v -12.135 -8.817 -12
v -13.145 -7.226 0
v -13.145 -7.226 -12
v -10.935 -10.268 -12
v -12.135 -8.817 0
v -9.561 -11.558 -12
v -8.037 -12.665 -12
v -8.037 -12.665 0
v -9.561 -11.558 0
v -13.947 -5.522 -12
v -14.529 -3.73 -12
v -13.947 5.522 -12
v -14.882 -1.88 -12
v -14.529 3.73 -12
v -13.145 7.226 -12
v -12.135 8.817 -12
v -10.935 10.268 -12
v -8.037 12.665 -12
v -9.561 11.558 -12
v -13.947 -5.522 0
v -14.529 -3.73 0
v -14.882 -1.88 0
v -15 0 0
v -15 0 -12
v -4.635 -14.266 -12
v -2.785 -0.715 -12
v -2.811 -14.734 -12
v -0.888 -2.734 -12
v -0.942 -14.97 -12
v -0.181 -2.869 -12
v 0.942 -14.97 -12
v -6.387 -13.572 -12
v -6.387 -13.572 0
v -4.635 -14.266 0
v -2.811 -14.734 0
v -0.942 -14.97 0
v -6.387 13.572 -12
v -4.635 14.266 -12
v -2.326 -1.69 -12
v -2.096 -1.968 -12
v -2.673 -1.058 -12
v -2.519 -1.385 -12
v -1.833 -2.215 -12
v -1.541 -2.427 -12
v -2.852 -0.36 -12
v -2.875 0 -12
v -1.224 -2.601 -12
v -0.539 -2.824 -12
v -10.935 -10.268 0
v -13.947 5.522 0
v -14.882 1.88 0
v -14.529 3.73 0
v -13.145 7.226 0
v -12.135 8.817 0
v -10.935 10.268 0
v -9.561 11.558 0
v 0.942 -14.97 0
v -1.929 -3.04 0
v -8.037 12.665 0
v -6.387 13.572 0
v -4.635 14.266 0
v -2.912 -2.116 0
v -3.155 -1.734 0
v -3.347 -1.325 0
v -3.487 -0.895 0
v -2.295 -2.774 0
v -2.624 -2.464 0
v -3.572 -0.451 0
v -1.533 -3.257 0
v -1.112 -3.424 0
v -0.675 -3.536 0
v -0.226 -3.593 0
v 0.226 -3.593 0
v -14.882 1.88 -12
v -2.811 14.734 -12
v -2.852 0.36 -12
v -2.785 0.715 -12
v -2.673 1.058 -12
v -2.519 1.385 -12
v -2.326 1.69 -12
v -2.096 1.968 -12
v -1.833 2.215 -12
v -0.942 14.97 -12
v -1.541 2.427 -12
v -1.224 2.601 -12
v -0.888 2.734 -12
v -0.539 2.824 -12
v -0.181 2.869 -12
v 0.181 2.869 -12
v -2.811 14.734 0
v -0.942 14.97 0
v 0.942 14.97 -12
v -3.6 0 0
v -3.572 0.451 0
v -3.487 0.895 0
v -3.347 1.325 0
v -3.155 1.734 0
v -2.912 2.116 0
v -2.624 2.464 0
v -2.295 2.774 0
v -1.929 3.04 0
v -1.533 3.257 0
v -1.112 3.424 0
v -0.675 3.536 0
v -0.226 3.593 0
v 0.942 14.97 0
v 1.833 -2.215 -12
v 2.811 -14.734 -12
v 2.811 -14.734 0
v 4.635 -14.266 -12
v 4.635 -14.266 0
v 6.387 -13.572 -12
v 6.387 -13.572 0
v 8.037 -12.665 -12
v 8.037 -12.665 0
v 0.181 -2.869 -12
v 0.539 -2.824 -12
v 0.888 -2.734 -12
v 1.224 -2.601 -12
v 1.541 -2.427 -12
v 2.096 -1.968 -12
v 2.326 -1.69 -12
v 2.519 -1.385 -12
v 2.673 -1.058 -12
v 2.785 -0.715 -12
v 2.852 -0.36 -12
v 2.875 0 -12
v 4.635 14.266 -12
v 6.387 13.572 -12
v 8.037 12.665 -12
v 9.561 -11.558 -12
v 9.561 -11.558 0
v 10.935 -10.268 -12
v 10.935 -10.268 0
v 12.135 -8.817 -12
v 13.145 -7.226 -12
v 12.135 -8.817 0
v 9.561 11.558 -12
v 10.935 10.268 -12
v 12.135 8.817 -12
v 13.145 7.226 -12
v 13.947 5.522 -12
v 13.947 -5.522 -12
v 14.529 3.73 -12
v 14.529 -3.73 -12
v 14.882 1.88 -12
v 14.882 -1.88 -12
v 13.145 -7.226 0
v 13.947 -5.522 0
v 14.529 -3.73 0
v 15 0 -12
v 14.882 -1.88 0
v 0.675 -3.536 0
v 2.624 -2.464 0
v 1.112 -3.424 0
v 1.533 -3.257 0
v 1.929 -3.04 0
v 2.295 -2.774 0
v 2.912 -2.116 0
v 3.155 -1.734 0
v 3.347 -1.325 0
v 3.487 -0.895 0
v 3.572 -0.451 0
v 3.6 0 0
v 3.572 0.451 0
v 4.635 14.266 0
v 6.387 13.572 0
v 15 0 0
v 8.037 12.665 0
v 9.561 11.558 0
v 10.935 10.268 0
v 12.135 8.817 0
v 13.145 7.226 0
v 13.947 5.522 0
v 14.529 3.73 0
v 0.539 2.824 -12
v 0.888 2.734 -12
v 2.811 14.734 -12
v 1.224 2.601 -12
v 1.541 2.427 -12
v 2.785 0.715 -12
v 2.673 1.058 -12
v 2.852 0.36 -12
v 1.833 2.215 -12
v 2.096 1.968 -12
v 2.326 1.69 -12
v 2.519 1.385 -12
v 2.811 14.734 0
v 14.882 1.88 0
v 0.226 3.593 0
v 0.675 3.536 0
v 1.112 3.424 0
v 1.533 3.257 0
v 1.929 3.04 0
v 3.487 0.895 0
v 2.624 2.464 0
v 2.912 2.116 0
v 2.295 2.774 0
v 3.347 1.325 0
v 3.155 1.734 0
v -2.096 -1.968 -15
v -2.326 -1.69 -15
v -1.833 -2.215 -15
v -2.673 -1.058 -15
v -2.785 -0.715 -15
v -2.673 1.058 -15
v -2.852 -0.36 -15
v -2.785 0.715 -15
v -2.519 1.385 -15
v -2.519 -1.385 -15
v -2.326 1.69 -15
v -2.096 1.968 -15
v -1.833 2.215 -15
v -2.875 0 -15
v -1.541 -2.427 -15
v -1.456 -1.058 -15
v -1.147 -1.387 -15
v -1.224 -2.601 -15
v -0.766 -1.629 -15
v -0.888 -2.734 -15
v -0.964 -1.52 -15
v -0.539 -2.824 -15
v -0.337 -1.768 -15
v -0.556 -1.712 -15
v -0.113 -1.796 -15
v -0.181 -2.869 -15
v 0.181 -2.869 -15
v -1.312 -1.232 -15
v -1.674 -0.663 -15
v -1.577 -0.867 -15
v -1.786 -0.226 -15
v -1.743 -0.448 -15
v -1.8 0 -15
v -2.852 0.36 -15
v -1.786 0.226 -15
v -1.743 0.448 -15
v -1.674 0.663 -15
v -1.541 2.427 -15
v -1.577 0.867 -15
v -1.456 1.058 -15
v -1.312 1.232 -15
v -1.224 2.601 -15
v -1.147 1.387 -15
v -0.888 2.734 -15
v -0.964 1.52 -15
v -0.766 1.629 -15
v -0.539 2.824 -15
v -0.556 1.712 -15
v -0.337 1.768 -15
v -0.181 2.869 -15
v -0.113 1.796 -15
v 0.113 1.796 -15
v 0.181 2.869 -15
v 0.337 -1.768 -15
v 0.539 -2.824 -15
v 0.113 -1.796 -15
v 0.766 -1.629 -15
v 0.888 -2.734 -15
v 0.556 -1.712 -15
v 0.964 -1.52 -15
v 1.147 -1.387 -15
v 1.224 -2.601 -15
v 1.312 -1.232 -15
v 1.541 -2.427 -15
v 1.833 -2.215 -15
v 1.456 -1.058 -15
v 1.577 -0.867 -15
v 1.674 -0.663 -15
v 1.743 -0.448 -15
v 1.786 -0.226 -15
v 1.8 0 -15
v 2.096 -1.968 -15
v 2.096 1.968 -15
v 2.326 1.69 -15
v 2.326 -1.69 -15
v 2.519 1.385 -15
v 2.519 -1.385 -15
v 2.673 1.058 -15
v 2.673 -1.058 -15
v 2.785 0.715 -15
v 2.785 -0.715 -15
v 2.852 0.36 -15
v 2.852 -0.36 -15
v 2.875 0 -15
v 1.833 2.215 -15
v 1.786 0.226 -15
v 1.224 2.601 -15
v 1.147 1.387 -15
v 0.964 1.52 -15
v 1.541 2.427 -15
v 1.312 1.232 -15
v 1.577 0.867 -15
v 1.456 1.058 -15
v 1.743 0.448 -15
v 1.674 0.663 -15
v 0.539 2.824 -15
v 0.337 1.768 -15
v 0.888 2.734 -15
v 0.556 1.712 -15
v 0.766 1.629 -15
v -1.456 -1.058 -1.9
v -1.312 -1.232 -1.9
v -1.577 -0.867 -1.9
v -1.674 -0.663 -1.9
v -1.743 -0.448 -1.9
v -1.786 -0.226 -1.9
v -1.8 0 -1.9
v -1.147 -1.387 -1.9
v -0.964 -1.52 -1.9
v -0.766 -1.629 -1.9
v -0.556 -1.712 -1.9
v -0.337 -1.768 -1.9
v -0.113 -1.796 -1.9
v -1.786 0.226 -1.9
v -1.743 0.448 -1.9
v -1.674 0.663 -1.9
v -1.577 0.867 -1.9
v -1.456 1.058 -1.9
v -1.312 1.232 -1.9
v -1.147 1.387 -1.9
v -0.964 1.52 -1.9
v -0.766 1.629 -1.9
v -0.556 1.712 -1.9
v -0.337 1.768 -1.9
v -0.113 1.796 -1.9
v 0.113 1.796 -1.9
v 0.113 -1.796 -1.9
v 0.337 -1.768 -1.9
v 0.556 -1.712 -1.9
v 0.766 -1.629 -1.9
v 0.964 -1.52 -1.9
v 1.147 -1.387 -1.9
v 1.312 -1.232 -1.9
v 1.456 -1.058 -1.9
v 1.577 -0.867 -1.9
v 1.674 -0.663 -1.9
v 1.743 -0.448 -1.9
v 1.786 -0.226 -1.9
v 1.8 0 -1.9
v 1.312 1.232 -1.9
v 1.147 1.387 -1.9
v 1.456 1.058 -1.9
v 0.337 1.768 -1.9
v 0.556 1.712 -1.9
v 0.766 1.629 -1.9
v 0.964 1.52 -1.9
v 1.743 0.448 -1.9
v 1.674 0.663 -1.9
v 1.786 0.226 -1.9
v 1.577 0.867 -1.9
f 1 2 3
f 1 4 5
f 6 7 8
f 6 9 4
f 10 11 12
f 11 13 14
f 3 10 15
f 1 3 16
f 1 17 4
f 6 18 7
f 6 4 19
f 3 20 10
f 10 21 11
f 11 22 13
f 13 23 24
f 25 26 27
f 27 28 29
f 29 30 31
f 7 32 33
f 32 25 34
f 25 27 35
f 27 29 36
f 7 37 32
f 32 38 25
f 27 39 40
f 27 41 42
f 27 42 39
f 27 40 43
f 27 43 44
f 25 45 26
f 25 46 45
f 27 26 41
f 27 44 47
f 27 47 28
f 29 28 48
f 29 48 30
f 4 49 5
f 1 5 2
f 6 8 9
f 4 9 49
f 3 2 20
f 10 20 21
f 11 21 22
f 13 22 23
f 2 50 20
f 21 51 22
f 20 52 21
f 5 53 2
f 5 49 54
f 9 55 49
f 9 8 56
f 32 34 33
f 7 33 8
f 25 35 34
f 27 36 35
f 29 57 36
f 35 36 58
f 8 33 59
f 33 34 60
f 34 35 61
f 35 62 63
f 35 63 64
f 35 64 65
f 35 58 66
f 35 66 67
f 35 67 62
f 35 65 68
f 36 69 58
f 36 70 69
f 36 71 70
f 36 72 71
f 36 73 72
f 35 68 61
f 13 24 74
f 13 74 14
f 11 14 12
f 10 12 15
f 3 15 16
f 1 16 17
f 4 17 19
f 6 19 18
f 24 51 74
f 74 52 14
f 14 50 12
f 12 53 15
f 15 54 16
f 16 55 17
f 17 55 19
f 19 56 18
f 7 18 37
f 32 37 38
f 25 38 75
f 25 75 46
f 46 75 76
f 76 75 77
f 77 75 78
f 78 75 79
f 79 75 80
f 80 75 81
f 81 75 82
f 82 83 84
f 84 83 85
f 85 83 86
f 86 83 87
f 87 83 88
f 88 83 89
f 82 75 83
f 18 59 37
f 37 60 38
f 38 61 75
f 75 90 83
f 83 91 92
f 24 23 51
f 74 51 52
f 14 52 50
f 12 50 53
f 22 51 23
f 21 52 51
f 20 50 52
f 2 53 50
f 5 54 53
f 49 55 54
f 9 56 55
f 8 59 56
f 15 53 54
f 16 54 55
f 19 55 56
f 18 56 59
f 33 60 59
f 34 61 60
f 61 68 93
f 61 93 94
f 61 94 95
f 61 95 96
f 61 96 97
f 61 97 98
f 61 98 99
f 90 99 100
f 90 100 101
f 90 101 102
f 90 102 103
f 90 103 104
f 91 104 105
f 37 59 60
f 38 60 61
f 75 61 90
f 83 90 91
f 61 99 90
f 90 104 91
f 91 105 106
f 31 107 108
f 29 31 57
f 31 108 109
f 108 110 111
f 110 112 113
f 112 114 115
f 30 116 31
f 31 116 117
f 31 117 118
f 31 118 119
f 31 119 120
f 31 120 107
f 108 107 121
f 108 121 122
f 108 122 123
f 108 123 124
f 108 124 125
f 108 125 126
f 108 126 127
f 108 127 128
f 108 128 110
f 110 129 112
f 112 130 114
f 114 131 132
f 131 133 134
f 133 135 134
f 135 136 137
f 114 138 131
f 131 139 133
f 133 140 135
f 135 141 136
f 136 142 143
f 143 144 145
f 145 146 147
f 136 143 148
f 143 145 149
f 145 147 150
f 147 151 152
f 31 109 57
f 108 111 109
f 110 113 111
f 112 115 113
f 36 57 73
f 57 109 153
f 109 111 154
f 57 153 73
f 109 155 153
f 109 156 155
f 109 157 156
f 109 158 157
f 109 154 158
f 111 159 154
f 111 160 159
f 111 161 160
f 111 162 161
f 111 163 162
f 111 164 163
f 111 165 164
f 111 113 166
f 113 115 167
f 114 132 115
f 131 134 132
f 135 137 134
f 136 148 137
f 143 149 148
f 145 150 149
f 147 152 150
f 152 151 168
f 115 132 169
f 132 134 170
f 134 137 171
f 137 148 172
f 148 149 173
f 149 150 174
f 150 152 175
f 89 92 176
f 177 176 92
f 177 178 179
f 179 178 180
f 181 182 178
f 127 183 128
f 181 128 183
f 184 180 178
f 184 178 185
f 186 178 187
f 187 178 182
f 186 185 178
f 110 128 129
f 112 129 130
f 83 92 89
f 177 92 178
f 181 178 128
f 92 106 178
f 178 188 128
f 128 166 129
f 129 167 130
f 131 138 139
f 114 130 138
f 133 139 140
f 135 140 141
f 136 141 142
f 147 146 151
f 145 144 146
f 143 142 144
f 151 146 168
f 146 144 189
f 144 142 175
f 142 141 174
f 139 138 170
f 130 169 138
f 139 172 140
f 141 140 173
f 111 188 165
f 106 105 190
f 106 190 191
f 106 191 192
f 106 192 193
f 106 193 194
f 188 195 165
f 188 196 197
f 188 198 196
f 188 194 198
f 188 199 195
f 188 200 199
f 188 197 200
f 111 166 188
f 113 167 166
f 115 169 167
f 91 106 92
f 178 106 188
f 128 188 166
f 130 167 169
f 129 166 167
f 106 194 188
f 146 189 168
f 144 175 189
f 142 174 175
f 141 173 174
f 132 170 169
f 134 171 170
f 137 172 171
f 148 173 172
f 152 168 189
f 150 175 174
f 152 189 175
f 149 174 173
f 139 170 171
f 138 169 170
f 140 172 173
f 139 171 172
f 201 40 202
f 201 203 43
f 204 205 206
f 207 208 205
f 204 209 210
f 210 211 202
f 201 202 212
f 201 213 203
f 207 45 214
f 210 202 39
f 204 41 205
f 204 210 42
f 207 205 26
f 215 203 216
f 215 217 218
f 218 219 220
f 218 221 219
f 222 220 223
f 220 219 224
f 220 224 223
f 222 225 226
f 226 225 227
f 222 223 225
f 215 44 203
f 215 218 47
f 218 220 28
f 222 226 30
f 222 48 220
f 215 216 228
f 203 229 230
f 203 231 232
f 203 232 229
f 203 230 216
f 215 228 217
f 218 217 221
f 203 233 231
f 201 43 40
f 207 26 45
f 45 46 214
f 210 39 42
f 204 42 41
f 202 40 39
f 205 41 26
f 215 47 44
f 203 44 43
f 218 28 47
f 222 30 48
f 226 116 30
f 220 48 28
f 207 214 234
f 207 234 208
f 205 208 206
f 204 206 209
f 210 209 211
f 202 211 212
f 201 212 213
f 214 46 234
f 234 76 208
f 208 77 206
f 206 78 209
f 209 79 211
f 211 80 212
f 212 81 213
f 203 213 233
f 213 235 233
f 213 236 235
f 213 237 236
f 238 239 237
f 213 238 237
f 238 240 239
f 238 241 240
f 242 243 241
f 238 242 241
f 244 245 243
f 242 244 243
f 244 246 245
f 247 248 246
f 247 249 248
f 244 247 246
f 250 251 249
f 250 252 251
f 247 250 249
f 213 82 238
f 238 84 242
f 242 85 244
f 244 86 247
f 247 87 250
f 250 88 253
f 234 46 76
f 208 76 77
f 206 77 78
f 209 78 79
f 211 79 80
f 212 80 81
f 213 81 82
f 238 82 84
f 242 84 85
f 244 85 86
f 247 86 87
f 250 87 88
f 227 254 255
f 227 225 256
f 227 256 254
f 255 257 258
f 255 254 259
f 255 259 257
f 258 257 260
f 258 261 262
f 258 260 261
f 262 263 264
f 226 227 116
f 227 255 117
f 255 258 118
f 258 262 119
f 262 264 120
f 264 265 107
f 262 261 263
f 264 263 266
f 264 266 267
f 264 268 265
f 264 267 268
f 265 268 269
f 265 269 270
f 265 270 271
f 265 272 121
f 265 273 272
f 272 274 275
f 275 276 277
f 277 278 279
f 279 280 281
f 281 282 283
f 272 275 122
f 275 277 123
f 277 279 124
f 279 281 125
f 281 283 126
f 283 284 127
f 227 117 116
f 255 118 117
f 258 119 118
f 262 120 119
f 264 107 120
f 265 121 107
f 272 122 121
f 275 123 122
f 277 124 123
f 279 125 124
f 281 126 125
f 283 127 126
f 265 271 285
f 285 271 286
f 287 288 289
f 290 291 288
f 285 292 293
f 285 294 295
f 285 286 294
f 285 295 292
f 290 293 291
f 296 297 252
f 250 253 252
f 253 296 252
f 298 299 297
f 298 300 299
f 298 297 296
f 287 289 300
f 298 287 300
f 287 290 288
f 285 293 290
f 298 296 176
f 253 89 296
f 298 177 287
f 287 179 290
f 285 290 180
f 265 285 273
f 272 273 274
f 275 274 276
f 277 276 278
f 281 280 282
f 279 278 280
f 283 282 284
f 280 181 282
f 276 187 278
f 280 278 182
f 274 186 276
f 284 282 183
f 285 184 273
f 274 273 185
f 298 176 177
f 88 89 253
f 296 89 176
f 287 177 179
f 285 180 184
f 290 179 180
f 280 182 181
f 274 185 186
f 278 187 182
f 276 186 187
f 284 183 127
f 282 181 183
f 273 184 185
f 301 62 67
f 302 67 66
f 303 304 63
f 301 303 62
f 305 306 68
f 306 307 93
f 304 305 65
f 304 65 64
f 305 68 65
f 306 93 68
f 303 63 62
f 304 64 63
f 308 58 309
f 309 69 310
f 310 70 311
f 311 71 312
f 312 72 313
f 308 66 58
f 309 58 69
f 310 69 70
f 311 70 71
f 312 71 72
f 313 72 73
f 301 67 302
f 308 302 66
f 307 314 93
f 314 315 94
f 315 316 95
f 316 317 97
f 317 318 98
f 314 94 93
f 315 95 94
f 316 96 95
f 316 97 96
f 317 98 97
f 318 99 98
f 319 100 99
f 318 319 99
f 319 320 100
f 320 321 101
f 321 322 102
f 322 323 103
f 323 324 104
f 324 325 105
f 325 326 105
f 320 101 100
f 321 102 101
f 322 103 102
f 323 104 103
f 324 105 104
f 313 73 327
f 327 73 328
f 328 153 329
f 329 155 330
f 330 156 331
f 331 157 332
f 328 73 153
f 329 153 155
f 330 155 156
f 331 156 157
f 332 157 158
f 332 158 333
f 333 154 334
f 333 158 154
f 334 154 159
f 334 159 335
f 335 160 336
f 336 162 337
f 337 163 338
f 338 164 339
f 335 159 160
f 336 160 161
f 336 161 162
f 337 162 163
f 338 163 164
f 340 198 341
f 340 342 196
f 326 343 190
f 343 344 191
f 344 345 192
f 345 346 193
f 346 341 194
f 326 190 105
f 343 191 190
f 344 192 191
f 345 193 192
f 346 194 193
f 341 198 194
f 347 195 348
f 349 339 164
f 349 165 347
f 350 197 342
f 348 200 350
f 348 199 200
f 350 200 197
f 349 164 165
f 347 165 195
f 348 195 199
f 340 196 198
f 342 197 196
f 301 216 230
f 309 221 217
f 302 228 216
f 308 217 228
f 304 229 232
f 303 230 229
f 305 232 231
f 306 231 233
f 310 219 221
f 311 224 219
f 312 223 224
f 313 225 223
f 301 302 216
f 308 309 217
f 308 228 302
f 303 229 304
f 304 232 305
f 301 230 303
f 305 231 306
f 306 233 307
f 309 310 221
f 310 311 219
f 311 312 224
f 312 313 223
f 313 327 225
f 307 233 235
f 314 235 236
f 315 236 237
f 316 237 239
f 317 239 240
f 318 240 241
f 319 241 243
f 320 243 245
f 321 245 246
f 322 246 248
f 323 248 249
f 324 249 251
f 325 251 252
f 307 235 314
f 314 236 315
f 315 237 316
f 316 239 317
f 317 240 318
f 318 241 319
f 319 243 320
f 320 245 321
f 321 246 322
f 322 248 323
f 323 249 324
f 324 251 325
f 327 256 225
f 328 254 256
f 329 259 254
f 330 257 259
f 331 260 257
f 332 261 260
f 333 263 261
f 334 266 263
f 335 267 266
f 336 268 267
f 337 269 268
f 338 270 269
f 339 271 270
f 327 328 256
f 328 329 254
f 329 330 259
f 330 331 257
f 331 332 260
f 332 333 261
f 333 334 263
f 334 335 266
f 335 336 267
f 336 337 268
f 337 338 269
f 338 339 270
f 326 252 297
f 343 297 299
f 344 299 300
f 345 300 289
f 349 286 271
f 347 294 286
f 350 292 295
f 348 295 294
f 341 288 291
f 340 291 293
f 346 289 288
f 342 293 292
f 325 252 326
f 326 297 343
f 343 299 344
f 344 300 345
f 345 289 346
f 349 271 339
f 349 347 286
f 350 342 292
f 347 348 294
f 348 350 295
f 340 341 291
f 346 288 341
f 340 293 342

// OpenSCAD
$fn = 50;

difference() {
	union() {
		translate(v = [0, 0, -12.0]) {
			cylinder(h = 12, r = 15.0);
		}
		#translate(v = [0, 0, -15.0]) {
			cylinder(h = 15, r = 2.875);
		}
	}
	union() {
		translate(v = [0, 0, 0]) {
			rotate(a = [0, 0, 0]) {
				difference() {
					union() {
						translate(v = [0, 0, -15.0]) {
							cylinder(h = 15, r = 1.5);
						}
						translate(v = [0, 0, -1.9]) {
							cylinder(h = 1.9, r1 = 1.8, r2 = 3.6);
						}
						translate(v = [0, 0, -15.0]) {
							cylinder(h = 15, r = 1.8);
						}
						translate(v = [0, 0, -15.0]) {
							cylinder(h = 15, r = 1.5);
						}
					}
					union();
				}
			}
		}
	}
}
